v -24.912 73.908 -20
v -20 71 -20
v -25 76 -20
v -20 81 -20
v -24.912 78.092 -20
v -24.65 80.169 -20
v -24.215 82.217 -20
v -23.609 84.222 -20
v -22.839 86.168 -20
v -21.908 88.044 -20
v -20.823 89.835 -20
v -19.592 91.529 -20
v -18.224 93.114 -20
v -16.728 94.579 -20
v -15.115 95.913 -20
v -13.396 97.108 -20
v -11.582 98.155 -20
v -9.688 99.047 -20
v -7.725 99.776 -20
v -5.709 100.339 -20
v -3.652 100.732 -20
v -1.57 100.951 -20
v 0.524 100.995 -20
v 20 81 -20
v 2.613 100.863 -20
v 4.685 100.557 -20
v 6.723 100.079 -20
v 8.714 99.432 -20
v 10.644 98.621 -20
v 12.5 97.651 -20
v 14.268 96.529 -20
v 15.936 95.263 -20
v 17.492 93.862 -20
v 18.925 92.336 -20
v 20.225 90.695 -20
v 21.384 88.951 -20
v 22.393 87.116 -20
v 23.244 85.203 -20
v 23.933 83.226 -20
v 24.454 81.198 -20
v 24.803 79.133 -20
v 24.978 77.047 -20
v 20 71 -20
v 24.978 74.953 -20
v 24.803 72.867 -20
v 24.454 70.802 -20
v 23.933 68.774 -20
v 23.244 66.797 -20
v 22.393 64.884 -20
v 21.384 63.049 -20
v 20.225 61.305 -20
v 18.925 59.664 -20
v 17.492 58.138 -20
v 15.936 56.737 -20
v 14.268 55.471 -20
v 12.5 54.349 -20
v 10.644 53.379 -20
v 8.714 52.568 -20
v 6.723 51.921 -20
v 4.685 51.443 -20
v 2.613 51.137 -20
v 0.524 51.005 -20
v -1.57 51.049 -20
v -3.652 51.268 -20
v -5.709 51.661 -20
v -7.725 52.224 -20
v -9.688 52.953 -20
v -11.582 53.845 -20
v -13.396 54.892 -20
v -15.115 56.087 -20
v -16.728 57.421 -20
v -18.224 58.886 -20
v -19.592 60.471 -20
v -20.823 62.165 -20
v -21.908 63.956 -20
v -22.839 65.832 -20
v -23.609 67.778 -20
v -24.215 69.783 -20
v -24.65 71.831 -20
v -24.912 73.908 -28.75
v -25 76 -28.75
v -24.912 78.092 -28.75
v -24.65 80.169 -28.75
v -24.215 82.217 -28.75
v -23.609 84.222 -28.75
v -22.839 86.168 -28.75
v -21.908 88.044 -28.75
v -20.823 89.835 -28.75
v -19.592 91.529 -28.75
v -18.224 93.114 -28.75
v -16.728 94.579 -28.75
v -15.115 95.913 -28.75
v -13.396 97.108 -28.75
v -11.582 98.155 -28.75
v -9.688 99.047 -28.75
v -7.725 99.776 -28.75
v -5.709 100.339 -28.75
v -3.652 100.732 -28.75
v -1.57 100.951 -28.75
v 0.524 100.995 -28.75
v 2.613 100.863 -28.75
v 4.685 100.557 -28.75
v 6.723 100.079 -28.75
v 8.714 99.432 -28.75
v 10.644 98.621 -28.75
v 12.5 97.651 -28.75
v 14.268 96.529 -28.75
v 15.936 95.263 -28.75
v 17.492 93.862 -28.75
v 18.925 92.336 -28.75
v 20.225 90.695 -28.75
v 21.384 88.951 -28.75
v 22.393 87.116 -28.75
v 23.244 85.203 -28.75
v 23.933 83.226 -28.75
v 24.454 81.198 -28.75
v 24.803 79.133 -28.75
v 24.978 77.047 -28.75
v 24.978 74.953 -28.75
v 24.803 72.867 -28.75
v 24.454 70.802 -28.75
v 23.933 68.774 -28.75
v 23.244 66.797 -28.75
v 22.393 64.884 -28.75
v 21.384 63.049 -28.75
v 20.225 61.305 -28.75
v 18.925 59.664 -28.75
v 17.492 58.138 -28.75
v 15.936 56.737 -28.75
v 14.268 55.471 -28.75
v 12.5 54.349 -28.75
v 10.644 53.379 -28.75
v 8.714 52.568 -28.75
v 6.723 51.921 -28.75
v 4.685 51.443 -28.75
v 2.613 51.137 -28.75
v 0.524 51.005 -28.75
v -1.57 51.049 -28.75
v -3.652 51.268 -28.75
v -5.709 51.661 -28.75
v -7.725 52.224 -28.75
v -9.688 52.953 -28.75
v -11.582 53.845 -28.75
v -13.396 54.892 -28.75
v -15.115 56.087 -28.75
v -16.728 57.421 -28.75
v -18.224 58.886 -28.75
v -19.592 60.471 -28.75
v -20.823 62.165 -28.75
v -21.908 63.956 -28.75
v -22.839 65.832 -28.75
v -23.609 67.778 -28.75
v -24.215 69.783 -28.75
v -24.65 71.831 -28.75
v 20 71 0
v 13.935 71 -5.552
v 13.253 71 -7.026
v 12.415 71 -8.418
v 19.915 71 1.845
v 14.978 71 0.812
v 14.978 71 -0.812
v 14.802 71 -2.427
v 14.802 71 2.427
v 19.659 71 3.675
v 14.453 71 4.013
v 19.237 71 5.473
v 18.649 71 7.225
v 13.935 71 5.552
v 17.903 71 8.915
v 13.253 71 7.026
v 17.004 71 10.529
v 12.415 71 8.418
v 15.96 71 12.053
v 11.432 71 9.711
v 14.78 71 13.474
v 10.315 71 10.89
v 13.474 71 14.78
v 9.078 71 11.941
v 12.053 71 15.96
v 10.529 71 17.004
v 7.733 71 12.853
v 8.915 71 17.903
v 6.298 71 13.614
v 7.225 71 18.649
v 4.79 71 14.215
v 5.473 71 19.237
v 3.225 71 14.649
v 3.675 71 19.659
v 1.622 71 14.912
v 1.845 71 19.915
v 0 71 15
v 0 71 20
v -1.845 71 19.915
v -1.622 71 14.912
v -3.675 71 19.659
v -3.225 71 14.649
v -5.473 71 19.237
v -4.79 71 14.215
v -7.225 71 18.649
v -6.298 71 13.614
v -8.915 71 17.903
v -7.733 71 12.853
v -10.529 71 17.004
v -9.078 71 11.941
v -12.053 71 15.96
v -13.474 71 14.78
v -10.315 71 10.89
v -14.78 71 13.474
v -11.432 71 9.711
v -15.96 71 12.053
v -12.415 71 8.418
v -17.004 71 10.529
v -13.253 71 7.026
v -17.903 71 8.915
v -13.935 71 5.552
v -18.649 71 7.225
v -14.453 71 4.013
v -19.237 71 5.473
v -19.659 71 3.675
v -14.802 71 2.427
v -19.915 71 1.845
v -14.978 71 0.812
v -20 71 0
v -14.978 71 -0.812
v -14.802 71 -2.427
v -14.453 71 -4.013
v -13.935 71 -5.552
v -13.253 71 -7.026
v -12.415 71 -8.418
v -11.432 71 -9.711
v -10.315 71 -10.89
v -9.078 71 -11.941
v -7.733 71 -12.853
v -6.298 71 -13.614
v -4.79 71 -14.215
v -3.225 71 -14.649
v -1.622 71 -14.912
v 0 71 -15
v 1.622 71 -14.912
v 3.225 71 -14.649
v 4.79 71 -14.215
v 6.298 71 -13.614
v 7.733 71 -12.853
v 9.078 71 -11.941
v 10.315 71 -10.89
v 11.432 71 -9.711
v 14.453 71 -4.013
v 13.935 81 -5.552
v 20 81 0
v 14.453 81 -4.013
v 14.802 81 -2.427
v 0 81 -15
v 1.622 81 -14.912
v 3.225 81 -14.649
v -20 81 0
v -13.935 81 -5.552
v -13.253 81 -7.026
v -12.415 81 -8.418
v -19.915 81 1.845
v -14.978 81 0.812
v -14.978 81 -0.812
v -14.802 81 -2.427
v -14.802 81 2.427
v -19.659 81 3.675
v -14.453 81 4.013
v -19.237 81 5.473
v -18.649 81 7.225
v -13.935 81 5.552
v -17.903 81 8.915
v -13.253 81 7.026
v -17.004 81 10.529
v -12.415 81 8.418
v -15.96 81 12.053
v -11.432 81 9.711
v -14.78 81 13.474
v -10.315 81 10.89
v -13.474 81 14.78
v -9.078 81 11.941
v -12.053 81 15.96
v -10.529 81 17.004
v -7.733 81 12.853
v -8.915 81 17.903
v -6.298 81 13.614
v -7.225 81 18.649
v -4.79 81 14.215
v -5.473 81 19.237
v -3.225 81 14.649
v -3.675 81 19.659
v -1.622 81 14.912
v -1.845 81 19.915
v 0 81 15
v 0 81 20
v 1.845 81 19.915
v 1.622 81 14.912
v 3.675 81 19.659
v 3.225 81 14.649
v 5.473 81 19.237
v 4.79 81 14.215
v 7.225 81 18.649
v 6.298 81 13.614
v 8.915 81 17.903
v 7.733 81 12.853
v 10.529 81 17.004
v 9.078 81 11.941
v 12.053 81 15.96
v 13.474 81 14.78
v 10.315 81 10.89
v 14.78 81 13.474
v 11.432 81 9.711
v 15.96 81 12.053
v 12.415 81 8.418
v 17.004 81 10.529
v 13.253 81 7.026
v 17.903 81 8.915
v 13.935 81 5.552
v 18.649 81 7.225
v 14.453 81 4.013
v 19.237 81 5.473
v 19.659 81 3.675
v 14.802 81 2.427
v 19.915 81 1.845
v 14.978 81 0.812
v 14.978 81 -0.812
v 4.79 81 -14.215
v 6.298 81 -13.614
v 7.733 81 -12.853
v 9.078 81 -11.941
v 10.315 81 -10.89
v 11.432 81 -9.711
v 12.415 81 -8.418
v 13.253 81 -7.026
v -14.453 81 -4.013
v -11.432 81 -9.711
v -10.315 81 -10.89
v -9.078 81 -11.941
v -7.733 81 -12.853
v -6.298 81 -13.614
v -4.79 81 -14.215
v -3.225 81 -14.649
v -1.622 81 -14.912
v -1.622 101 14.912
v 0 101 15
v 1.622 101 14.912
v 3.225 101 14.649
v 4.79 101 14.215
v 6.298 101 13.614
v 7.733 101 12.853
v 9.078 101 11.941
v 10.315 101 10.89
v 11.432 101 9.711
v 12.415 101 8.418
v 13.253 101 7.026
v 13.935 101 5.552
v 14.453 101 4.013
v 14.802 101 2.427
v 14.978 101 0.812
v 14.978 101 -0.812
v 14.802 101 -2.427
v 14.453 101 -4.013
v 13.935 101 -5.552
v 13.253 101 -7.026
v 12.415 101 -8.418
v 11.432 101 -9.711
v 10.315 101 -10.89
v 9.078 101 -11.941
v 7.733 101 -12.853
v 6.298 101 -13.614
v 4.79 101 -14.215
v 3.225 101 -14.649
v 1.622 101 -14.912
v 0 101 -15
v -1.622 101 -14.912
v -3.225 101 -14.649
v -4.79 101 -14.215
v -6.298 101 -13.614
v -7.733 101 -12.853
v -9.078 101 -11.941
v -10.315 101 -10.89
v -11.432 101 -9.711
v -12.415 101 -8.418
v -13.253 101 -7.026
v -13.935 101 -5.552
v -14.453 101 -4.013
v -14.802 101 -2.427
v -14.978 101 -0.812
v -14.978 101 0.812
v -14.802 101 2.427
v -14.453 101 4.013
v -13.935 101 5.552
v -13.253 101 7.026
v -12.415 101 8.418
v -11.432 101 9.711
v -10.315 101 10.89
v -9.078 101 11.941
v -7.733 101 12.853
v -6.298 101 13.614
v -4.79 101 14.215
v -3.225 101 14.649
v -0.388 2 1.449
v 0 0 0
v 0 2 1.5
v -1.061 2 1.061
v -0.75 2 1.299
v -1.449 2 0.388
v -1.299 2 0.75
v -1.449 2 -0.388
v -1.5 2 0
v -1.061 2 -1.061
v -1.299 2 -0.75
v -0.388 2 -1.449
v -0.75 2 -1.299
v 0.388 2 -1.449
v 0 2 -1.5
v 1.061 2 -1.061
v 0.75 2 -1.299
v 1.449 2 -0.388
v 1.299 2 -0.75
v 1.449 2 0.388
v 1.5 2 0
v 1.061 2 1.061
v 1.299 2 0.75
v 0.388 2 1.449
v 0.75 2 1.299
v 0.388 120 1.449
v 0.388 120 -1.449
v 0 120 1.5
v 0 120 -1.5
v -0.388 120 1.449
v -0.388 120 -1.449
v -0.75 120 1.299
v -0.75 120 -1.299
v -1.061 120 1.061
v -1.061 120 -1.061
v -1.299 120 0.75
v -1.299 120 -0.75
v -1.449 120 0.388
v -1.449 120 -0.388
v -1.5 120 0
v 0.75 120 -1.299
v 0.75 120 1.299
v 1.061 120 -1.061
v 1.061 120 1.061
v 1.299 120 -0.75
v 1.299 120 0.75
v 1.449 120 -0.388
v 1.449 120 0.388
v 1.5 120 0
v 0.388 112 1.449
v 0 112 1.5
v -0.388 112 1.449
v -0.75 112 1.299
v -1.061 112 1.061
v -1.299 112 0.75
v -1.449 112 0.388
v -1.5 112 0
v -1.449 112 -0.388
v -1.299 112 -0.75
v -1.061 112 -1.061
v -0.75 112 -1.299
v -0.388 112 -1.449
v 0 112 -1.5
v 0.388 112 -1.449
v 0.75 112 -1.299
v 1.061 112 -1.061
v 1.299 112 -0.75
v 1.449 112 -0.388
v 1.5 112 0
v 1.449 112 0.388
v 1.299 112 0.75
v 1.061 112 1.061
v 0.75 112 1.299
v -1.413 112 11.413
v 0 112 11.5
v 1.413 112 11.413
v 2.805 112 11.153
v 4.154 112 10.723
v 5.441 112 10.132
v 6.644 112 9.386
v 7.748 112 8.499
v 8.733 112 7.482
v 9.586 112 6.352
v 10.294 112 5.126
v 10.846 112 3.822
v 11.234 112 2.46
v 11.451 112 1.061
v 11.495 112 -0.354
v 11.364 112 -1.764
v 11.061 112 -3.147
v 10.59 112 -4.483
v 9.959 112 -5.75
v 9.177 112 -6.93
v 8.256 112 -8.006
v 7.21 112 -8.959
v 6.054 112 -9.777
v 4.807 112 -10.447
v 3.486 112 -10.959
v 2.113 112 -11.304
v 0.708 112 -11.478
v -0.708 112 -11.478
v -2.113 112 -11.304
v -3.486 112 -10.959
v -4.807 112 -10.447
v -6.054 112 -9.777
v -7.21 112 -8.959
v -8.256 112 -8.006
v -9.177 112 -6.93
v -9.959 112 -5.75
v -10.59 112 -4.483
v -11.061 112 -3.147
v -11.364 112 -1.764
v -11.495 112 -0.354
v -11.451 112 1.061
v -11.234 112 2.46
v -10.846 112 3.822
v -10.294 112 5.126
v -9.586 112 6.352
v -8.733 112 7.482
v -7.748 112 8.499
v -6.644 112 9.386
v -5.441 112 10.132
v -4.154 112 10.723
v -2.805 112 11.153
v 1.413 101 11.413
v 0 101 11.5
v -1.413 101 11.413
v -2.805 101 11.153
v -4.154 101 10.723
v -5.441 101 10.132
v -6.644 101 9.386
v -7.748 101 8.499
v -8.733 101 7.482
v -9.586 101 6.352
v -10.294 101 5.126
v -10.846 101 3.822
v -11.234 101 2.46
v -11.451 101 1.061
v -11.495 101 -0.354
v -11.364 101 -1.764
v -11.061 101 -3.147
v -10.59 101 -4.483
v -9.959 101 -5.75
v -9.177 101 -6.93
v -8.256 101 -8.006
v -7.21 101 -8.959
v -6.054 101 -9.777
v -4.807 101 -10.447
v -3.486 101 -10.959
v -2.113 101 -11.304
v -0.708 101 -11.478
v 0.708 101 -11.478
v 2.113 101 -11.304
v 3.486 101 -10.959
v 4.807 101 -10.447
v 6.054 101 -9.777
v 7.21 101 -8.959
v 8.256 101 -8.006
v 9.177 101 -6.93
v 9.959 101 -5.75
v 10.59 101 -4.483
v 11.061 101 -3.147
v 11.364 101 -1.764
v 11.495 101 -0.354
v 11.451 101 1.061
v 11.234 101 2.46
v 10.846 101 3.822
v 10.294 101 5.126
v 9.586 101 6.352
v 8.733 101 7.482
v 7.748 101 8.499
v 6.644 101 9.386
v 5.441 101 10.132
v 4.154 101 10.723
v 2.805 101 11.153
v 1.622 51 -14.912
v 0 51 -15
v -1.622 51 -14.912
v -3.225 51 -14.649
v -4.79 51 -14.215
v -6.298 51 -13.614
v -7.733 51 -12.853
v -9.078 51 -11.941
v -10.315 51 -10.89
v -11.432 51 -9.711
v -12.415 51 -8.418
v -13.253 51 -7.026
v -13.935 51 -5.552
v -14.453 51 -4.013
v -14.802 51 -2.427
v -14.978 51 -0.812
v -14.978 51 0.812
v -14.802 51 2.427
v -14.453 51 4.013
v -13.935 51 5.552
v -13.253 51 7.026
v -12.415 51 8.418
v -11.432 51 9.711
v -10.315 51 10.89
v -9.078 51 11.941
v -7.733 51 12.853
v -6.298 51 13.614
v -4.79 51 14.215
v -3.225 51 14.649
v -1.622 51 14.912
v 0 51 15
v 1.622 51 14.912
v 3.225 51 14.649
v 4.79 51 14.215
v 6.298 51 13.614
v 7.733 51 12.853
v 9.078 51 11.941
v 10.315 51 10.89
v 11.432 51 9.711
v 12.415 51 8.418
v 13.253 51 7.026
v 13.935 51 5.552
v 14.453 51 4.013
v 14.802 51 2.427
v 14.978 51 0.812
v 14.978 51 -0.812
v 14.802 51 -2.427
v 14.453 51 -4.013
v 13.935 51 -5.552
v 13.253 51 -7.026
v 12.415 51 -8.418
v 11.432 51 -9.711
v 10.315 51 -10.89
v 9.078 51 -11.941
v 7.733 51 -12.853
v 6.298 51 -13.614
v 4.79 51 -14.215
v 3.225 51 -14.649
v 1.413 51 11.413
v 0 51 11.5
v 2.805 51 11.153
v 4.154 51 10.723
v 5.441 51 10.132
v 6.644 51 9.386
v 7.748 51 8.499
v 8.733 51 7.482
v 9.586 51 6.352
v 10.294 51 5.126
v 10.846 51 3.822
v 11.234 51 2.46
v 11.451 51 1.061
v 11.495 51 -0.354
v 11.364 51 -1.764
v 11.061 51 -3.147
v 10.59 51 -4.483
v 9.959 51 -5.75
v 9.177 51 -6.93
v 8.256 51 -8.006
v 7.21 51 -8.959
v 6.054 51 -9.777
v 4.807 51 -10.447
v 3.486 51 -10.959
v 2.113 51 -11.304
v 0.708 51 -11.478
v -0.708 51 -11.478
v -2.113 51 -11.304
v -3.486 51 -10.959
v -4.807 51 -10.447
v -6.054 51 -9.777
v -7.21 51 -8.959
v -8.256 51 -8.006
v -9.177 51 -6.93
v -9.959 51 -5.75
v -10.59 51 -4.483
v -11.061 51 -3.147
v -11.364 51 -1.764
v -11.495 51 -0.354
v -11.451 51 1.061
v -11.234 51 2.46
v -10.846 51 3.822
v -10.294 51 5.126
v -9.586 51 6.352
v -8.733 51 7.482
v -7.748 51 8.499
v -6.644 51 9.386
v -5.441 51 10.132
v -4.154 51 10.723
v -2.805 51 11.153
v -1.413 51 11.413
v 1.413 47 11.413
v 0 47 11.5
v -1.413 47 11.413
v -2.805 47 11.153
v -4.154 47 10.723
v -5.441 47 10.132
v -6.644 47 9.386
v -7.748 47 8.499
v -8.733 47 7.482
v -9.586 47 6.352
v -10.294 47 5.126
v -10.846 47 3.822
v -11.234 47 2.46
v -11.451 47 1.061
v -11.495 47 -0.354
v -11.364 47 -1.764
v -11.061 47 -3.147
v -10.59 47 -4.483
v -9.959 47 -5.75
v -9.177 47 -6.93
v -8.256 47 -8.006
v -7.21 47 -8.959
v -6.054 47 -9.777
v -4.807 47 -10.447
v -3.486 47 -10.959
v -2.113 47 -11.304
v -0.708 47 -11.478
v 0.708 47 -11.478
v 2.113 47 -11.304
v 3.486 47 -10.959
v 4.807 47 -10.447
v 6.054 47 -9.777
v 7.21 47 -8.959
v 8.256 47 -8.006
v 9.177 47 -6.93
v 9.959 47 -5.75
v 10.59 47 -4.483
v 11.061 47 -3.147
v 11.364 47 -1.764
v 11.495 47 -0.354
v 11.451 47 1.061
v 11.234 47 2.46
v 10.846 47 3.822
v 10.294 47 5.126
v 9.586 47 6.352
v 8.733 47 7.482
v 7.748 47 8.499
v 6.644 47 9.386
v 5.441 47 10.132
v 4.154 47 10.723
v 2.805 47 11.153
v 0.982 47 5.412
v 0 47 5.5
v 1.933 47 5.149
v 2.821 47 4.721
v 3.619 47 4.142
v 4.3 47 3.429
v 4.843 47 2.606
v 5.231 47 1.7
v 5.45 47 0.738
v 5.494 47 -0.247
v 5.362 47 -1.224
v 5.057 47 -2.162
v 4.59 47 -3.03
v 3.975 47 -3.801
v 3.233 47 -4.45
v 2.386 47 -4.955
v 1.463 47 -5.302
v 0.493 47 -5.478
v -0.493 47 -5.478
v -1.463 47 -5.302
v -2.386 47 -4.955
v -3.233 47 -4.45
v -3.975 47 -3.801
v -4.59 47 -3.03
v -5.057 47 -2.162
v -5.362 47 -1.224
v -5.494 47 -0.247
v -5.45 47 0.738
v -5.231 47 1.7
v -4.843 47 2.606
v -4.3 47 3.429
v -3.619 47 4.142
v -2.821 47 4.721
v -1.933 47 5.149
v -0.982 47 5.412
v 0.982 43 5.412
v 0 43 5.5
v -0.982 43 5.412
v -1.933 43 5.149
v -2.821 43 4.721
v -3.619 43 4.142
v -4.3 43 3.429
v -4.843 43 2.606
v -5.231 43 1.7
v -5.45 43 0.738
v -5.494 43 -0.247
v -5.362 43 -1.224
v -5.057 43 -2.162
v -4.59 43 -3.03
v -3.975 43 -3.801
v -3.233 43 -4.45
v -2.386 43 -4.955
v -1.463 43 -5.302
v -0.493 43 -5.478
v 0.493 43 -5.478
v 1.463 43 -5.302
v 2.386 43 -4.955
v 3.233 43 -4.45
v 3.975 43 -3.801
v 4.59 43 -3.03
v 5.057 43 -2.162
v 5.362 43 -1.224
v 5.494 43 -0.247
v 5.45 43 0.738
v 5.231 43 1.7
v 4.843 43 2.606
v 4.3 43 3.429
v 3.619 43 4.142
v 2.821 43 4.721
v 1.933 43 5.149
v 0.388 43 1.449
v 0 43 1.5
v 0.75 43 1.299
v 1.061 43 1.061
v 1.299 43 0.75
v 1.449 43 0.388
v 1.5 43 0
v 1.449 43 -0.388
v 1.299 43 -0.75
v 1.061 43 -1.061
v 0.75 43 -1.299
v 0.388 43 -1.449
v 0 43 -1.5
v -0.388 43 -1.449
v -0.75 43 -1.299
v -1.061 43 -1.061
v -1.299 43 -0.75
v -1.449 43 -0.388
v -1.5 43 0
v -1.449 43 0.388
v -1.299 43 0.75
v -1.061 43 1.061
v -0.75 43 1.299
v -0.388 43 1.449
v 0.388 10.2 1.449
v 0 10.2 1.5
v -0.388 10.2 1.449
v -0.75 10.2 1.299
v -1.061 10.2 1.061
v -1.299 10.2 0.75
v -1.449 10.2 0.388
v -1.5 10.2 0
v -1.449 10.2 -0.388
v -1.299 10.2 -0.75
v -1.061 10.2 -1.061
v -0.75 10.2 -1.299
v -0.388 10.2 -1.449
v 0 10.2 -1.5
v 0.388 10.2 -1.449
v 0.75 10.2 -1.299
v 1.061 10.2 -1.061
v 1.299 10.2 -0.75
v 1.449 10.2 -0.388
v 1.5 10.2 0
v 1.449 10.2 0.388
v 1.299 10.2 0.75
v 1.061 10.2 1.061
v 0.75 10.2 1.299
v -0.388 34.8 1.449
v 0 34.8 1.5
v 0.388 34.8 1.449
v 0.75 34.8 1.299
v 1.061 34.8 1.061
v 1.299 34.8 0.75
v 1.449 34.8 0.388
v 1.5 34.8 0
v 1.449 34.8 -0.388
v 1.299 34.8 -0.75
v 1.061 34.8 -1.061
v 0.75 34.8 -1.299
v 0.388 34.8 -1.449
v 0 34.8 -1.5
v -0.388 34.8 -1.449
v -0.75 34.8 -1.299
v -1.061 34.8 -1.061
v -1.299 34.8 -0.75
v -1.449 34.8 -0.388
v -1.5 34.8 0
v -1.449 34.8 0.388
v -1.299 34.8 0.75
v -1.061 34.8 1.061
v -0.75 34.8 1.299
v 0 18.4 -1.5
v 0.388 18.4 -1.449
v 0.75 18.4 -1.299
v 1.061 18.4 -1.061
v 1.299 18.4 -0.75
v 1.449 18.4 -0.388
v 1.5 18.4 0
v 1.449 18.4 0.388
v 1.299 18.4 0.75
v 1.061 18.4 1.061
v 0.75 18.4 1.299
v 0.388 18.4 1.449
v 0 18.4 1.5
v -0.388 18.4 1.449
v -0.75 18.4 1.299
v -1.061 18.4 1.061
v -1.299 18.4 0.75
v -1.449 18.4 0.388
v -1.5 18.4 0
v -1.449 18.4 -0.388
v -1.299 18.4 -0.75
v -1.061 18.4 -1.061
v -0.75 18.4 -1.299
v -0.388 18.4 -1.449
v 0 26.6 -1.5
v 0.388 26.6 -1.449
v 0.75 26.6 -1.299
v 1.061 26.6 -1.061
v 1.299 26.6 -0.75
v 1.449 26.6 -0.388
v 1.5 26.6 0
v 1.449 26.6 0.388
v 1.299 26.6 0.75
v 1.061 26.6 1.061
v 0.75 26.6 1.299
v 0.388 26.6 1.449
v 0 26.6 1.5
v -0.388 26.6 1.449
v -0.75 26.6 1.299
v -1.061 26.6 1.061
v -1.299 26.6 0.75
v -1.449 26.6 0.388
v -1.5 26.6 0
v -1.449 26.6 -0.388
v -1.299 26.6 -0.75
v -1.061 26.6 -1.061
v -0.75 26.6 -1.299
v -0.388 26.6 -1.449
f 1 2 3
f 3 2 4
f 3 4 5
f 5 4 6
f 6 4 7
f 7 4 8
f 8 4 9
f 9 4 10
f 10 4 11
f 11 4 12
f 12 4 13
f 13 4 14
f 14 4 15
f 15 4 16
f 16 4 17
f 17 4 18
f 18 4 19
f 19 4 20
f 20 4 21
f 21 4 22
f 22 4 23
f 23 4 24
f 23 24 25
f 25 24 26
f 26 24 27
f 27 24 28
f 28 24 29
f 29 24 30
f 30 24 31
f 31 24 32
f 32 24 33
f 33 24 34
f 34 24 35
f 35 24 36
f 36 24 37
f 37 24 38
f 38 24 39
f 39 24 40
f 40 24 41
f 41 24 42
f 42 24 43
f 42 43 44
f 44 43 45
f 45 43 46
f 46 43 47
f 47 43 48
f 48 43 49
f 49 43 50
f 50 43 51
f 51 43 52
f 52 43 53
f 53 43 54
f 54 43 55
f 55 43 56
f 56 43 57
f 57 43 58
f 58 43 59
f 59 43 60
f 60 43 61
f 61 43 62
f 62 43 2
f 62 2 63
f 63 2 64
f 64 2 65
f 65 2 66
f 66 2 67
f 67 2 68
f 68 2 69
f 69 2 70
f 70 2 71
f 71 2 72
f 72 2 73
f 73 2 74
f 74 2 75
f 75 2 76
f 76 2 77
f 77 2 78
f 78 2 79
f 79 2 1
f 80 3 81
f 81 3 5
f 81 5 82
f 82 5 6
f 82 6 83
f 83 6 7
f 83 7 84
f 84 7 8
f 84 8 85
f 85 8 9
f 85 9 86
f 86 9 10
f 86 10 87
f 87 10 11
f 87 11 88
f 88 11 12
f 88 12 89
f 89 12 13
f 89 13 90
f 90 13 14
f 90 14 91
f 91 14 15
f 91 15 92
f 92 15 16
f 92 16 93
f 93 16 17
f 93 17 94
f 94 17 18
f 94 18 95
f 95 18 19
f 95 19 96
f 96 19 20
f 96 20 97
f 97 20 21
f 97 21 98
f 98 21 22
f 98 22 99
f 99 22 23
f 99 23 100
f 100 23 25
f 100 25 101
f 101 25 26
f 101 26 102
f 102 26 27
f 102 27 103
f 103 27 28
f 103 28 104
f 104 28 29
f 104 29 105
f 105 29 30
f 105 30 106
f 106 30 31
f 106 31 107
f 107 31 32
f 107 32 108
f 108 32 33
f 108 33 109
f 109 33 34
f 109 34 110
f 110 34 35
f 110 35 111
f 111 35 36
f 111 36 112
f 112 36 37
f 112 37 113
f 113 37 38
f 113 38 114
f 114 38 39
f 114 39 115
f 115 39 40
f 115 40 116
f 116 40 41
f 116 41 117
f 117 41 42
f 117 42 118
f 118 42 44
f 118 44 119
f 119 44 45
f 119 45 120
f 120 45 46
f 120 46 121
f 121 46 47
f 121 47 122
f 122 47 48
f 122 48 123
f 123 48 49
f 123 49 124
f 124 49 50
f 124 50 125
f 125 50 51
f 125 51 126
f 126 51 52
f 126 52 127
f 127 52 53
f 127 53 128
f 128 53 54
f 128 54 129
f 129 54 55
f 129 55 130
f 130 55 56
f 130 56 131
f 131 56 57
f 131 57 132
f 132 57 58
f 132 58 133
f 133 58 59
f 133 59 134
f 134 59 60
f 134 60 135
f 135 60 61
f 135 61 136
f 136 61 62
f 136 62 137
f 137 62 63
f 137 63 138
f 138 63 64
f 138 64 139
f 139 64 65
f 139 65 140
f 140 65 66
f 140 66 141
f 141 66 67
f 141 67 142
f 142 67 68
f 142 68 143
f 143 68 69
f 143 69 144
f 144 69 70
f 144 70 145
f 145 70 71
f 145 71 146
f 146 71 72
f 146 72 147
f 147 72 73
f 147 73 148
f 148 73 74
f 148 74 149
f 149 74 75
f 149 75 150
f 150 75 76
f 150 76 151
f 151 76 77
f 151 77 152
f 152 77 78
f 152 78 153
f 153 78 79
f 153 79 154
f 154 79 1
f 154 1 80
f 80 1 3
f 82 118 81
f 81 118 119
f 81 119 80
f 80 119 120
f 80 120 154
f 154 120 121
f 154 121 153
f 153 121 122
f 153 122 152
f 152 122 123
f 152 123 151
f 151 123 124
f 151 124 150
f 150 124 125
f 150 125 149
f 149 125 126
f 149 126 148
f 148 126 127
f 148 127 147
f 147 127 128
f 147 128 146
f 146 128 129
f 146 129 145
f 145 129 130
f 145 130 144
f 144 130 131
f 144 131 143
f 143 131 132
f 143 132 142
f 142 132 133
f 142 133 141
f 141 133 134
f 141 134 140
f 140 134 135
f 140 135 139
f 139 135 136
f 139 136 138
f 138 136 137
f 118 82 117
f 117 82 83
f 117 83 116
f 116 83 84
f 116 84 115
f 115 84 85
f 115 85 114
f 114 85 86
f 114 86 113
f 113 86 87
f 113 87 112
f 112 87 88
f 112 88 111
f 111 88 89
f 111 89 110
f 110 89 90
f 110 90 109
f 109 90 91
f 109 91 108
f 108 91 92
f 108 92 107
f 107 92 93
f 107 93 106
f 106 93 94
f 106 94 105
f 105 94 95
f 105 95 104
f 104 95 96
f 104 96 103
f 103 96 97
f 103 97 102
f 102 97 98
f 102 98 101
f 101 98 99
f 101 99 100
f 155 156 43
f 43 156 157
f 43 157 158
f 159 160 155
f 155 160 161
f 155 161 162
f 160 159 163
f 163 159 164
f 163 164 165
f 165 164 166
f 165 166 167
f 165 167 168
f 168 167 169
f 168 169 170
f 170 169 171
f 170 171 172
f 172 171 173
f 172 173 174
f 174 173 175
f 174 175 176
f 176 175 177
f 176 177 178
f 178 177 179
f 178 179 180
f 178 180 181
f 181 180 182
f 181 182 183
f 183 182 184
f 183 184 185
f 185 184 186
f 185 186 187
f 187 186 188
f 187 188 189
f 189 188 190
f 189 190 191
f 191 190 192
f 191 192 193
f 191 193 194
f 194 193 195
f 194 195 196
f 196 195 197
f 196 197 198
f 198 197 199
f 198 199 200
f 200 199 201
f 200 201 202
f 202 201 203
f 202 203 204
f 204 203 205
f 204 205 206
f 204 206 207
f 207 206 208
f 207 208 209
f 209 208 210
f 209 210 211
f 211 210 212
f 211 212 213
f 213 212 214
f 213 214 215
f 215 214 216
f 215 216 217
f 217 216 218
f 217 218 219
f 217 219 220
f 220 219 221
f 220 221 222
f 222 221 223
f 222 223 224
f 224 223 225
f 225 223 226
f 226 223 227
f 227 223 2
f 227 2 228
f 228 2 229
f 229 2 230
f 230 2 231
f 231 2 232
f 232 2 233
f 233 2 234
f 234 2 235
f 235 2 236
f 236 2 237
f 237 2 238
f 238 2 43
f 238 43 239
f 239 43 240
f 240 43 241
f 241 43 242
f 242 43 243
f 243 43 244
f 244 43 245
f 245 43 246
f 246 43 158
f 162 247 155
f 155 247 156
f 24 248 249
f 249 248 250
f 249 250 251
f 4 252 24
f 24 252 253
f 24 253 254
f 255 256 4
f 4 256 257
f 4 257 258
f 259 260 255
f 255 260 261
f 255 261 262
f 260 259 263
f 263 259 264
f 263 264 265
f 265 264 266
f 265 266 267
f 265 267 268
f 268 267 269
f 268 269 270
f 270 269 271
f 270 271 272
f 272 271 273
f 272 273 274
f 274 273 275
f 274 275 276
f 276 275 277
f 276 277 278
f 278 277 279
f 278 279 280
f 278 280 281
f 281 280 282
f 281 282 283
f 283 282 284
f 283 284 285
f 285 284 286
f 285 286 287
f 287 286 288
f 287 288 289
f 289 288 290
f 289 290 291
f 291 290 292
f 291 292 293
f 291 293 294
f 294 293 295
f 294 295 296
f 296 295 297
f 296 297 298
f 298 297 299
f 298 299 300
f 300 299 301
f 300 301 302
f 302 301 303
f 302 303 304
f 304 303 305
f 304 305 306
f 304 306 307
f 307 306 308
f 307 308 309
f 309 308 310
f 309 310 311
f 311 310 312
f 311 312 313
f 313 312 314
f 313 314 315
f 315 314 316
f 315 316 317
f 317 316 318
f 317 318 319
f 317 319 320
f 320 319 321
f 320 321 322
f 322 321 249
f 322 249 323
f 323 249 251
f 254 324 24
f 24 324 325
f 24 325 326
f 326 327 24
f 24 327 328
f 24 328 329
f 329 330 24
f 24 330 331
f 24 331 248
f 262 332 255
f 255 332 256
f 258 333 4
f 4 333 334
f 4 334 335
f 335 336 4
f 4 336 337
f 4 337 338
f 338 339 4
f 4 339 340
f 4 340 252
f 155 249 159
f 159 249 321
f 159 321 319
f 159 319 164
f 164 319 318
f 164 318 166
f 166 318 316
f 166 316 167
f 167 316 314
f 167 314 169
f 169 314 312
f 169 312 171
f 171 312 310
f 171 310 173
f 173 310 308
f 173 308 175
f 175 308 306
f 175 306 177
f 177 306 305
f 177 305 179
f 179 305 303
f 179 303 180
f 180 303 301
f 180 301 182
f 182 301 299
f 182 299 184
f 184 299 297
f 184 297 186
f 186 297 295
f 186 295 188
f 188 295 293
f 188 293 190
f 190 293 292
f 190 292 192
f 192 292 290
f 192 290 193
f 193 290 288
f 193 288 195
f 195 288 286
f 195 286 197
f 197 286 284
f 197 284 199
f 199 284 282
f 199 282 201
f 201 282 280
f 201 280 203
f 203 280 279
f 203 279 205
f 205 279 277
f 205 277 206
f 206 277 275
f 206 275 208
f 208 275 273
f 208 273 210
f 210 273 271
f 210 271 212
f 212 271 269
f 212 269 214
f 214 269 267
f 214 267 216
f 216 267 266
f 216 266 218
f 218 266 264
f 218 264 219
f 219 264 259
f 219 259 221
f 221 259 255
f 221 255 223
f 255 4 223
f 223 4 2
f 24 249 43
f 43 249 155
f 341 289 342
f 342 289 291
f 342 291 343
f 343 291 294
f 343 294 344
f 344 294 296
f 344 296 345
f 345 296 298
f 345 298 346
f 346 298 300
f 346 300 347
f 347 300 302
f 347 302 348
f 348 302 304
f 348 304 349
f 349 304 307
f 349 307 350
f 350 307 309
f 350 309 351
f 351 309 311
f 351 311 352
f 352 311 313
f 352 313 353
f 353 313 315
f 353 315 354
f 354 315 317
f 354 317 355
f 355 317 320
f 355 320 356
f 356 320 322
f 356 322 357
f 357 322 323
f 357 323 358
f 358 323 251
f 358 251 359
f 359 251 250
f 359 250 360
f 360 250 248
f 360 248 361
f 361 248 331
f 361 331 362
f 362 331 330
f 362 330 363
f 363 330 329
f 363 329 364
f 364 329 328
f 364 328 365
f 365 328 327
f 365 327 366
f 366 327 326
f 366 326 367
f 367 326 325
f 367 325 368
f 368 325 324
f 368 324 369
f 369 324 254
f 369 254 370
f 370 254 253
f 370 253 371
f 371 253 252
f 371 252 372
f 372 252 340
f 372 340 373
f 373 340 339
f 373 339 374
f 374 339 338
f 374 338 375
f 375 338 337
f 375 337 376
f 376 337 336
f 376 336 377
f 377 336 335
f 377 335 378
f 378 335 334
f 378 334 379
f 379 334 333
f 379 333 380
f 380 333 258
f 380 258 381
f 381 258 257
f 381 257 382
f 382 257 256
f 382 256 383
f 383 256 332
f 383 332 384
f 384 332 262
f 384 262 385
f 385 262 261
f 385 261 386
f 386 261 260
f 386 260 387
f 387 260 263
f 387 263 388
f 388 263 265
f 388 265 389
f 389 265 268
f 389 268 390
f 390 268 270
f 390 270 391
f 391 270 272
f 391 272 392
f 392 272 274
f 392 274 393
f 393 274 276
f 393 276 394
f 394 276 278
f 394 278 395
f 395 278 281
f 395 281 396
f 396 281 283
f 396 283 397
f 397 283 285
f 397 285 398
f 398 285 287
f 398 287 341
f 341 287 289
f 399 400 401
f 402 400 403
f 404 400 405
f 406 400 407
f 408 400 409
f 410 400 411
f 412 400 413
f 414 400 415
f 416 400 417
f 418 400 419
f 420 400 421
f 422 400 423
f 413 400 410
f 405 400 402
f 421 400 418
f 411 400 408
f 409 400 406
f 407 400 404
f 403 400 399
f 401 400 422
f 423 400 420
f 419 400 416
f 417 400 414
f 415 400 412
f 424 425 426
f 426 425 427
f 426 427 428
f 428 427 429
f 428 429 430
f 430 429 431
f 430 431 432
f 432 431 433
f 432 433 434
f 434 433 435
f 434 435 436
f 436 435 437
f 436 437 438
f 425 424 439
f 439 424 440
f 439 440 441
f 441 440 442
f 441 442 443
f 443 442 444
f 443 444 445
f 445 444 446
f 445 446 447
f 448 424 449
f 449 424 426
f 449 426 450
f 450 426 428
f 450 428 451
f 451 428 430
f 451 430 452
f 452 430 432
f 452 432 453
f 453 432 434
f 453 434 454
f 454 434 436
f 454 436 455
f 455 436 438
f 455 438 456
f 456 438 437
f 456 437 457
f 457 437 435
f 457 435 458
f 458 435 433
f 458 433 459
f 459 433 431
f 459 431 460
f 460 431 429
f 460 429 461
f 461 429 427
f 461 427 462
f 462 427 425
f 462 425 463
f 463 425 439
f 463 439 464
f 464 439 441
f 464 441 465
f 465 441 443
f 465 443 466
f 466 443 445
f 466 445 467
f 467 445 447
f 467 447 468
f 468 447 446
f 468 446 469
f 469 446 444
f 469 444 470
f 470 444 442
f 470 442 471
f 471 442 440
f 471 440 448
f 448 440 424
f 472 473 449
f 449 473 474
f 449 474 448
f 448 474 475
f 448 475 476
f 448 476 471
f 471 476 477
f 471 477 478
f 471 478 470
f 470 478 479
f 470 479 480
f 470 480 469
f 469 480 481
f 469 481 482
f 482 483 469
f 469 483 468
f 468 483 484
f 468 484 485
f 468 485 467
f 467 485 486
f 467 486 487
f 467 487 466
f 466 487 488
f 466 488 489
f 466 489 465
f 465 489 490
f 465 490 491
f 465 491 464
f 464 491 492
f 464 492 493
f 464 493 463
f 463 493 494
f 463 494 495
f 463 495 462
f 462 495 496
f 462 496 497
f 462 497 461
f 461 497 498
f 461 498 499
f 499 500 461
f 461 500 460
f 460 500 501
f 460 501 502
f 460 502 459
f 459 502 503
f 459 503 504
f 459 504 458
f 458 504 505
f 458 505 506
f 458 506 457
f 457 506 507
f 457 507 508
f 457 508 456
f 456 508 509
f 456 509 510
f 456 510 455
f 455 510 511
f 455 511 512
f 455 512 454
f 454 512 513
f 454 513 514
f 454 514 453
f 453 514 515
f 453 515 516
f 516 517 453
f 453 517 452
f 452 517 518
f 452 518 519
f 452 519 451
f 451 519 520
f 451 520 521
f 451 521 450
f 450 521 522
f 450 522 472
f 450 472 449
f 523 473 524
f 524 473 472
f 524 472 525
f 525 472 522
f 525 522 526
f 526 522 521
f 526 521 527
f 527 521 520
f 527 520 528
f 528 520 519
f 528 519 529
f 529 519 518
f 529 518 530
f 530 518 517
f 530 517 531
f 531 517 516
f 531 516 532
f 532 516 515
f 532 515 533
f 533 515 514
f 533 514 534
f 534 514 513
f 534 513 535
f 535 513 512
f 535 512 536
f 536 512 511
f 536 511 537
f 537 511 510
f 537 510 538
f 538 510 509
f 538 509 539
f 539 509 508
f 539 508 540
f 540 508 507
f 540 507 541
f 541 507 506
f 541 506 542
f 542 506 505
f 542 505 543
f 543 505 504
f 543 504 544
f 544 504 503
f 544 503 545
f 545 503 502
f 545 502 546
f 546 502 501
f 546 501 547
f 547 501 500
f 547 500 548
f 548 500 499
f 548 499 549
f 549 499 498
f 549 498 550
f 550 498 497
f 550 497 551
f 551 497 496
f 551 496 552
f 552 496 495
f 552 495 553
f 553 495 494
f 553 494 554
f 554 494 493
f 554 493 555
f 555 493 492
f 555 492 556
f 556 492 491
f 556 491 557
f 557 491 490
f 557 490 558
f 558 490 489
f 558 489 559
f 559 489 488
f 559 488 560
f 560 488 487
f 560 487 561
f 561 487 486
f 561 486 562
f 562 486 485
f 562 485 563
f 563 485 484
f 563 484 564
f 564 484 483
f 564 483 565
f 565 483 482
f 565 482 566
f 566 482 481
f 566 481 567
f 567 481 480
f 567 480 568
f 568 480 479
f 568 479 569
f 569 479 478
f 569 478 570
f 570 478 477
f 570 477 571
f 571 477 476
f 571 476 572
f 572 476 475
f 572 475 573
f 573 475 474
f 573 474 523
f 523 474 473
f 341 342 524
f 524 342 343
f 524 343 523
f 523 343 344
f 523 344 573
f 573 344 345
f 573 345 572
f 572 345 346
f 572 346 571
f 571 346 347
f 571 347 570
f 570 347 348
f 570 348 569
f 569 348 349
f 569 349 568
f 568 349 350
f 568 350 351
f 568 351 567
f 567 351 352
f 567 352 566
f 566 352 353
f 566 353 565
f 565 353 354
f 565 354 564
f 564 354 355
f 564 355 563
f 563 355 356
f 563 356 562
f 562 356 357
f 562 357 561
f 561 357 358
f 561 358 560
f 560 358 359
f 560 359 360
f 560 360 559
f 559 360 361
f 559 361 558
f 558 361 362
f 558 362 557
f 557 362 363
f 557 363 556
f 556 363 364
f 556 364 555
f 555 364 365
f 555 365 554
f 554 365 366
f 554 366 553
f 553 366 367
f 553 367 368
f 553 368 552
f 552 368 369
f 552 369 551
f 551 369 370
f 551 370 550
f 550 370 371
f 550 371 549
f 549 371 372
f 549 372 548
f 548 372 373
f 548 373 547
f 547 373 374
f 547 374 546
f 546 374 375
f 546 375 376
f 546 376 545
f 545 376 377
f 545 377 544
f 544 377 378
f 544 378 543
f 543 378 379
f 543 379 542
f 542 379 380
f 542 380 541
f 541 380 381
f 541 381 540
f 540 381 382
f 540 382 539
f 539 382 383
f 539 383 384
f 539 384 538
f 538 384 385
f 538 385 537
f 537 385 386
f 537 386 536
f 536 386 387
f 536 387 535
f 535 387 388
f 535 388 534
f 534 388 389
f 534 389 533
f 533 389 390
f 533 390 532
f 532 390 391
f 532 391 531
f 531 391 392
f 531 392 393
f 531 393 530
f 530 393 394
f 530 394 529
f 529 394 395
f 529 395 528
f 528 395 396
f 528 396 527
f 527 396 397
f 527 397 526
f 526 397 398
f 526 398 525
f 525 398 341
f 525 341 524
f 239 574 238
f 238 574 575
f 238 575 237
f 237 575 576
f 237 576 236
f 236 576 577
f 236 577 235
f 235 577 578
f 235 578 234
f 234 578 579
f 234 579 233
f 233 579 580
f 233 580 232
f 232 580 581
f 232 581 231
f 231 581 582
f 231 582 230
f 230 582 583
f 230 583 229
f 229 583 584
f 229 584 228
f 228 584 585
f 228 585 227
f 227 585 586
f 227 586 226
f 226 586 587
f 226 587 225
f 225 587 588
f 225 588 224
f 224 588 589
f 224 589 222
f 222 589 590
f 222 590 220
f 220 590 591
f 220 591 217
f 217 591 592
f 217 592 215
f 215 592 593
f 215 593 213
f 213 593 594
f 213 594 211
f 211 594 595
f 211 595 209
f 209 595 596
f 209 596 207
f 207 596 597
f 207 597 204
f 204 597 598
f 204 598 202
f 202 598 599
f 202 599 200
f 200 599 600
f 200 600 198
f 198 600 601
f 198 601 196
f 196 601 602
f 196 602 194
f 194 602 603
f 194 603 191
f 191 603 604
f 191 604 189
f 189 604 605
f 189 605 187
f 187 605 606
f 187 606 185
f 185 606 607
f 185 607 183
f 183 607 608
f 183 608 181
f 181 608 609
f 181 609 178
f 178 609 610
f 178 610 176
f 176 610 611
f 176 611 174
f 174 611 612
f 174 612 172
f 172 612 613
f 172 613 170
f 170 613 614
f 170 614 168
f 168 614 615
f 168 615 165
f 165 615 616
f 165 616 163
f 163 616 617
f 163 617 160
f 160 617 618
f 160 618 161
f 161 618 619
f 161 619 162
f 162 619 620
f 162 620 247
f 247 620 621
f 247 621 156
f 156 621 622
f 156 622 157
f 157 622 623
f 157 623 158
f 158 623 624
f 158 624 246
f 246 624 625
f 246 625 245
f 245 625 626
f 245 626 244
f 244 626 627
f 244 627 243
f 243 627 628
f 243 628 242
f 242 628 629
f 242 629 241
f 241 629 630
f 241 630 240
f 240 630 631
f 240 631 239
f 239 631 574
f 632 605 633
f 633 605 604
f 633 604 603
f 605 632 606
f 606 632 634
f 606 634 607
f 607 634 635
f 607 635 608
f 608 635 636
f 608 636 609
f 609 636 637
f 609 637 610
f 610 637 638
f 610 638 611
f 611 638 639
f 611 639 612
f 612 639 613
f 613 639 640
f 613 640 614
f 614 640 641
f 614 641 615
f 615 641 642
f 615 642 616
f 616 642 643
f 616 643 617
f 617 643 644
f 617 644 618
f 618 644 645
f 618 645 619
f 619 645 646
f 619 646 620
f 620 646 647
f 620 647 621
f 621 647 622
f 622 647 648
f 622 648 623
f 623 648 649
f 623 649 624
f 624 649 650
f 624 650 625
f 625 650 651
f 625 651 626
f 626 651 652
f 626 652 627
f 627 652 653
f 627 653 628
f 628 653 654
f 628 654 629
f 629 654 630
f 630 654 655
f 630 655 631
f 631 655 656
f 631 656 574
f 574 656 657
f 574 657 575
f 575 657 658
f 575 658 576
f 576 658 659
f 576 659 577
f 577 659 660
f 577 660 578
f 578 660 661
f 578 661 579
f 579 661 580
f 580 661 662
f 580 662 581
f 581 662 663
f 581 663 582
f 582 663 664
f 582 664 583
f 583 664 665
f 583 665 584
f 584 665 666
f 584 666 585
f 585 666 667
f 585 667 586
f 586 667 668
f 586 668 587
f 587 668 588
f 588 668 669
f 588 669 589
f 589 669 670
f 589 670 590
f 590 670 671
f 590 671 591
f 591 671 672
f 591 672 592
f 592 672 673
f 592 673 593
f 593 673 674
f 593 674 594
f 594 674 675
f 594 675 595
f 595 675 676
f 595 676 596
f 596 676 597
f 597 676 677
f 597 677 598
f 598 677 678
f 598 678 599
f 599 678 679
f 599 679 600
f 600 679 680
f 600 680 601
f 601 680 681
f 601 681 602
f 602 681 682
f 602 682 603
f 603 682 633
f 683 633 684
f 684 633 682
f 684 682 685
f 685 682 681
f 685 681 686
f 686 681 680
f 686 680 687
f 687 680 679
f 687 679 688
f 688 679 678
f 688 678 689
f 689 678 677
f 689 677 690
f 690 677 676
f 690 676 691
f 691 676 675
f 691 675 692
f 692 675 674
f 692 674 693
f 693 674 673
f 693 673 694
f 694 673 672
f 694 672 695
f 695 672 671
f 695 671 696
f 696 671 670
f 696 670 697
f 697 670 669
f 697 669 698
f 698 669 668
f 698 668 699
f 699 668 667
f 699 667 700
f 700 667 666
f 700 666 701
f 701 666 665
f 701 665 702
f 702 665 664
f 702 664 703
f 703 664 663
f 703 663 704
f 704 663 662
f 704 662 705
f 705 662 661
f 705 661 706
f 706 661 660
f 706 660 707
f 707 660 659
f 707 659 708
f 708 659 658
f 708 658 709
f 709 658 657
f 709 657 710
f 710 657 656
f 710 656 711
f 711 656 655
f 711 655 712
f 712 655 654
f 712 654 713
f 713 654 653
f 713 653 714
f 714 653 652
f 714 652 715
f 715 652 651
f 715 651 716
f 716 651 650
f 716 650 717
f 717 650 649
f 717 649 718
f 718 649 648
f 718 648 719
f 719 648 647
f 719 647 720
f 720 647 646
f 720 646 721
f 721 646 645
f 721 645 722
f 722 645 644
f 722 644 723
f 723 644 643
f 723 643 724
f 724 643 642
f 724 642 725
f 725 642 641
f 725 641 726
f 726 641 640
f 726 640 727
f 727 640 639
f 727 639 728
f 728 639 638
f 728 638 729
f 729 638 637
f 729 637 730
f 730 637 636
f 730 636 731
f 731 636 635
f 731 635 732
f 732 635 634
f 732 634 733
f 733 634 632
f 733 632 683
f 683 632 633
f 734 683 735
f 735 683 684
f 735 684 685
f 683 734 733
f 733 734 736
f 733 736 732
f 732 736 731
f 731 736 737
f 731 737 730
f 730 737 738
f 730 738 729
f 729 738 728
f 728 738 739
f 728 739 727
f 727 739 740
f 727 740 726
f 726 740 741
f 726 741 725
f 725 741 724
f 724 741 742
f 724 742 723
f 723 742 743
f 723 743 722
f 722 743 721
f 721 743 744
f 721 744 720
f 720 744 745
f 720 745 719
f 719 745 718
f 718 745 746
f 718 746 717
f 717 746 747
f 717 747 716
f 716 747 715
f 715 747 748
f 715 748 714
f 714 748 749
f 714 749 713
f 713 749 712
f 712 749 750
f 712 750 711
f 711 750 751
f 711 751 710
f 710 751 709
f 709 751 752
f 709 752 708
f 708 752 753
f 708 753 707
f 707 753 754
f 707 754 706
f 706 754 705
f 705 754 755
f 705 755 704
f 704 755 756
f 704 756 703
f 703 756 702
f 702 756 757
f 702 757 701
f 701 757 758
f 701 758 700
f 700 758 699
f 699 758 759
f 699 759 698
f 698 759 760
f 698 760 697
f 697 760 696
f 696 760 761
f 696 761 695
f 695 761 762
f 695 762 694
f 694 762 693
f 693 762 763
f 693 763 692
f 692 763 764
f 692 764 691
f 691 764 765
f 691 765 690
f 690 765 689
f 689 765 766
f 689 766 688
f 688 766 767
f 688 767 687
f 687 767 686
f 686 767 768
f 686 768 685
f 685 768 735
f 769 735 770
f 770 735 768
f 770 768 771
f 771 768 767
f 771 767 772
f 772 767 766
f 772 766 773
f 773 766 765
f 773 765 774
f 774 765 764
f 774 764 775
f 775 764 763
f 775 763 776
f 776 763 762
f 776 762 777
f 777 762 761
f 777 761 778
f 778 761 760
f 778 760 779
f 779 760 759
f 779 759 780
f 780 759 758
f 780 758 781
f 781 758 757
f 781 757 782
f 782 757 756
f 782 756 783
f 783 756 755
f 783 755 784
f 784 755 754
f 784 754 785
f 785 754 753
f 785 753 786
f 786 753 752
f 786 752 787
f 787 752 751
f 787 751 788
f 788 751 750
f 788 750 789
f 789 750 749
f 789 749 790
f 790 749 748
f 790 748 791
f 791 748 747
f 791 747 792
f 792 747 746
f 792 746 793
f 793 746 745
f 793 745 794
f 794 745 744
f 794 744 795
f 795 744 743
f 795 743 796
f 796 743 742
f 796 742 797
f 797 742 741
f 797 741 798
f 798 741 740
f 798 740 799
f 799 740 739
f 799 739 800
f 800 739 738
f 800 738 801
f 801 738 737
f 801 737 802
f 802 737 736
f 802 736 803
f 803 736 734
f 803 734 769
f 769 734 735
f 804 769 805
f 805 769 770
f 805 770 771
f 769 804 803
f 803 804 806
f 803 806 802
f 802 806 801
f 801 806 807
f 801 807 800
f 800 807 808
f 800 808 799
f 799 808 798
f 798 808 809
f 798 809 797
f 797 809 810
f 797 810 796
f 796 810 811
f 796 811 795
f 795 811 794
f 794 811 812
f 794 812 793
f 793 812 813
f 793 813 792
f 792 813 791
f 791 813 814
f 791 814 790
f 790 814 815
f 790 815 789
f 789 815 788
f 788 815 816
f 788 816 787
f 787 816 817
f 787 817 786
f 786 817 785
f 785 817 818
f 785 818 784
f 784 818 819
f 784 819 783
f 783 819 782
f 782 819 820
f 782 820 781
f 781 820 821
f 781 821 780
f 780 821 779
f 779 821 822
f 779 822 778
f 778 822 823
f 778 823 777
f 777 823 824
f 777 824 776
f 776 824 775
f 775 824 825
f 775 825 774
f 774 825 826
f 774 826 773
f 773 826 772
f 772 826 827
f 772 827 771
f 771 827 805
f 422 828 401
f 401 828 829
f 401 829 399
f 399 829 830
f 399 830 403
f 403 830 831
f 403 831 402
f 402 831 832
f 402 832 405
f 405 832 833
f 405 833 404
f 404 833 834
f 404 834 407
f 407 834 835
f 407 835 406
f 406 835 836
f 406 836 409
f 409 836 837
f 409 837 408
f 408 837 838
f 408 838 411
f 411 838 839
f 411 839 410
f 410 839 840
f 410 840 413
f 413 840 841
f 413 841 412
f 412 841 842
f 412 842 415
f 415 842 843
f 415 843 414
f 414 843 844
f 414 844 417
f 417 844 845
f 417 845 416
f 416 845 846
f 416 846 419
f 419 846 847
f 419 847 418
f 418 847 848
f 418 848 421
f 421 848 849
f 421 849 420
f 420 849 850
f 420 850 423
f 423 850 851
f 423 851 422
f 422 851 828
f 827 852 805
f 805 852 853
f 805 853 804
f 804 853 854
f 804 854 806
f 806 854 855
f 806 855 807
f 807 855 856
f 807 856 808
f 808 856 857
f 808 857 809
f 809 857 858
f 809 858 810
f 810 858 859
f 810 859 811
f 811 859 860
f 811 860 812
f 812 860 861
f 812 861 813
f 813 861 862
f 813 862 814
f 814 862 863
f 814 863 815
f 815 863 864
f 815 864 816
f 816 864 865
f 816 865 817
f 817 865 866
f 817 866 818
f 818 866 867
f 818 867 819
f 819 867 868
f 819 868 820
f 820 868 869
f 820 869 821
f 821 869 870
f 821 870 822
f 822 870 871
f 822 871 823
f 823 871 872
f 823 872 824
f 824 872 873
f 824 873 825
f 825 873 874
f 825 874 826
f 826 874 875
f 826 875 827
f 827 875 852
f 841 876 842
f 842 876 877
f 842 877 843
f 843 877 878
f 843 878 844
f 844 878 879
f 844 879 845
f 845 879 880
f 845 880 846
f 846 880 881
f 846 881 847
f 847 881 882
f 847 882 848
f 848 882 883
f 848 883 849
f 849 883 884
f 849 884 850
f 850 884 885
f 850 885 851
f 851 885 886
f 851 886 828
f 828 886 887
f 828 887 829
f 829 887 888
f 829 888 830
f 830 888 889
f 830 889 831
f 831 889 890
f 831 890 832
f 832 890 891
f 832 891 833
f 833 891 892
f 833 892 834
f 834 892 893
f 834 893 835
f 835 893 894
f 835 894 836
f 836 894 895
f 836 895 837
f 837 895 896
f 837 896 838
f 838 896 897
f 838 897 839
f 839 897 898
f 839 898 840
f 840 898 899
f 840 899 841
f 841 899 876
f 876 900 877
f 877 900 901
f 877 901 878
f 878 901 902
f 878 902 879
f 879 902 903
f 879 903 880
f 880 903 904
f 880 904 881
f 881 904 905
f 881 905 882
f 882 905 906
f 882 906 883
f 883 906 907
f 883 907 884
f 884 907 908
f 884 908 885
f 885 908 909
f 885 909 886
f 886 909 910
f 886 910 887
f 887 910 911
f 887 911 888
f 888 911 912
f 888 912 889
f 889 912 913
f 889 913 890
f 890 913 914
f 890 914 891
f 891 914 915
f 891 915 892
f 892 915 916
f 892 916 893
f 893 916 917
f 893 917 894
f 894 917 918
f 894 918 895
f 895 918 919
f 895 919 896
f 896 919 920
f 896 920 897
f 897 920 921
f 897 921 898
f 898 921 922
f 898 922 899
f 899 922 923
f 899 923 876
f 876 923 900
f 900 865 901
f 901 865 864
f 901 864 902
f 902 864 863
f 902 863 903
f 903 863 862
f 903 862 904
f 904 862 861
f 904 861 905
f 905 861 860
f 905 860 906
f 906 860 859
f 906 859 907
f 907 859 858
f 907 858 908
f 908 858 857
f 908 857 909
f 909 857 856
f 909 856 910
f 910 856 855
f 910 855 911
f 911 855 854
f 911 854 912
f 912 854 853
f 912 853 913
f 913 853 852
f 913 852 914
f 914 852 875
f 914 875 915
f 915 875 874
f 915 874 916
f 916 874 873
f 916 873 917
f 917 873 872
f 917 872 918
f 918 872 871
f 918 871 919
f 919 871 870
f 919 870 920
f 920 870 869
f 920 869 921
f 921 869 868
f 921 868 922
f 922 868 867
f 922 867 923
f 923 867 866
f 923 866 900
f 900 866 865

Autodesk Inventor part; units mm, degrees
ref_plane "YZ Plane" through (0, 0, 0) normal (1, 0, 0) x (0, 1, 0)
ref_plane "XZ Plane" through (0, 0, 0) normal (0, 1, 0) x (-1, 0, 0)
ref_plane "XY Plane" through (0, 0, 0) normal (0, 0, 1) x (1, 0, 0)
sketch "Sketch1" plane through (0, 0, 0) normal (1, 0, 0) x (0, 1, 0)
  line L0 (0, 0) -> (1.5, 2)
  line L1 (1.5, 2) -> (1.5, 43)
  line L2 (0, 59) -> (0, 0)
  line L3 (11.5, 51) -> (16.5, 51)
  line L4 (16.5, 51) -> (16.5, 101)
  line L5 (16.5, 101) -> (11.5, 101)
  line L6 (1.5, 105) -> (1.5, 120)
  line L7 (1.5, 120) -> (0, 120)
  line L8 (0, 120) -> (0, 59)
  line L9 (0, -24) -> (0, 144) projected
  line L10 (16.5, 76) -> (-5.6648, 76)
  line L11 (-30.7978, 0) -> (145.133, 0) projected
  line L12 (11.5, 101) -> (11.5, 105)
  line L13 (11.5, 105) -> (1.5, 105)
  line L14 (11.5, 51) -> (11.5, 47)
  line L15 (11.5, 47) -> (5.5, 47)
  line L16 (5.5, 47) -> (5.5, 43)
  line L17 (5.5, 43) -> (1.5, 43)
  line L18 (0, 0) -> (2, 1.5)
  line L19 (2, 1.5) -> (43, 1.5)
  line L20 (43, 1.5) -> (43, 5.5)
  line L21 (43, 5.5) -> (47, 5.5)
  line L22 (47, 5.5) -> (47, 11.5)
  line L23 (47, 11.5) -> (51, 11.5)
  line L24 (51, 11.5) -> (51, 15)
  line L25 (51, 15) -> (101, 15)
  line L26 (101, 15) -> (101, 11.5)
  line L27 (101, 11.5) -> (112, 11.5)
  line L28 (112, 11.5) -> (112, 1.5)
  line L29 (112, 1.5) -> (120, 1.5)
  line L30 (120, 1.5) -> (120, 0)
  line L31 (-30.7978, 0) -> (145.133, 0) projected
  line L32 (76, 15) -> (76, 0)
  line L33 (0, 0) -> (120, 0)
  dimension "d0" = 2
  dimension "d3" = 76
  dimension "d4" = 120
  dimension "d5" = 50
  dimension "d7" = 1.5
  dimension "d8" = 10
  dimension "d9" = 4
  dimension "d10" = 4
  dimension "d11" = 4
  dimension "d12" = 6
  dimension "d13" = 4
  dimension "d21" = 2
  dimension "d22" = 1.5
  dimension "d23" = 76
  dimension "d24" = 120
  dimension "d25" = 1.5
  dimension "d26" = 4
  dimension "d27" = 4
  dimension "d28" = 6
  dimension "d29" = 4
  dimension "d30" = 10
  dimension "d31" = 8
  dimension "d32" = 50
  dimension "d33" = 15
  dimension "d42" = 3
revolve "Revolution1" add sketch "Sketch1" angle 360 about axis through (0, -10, 0) along (0, 1, 0) contours L18 L19 L20 L21 L22 L23 L24 L25 L32 L11 | L32 L25 L26 L27 L28 L29 L30 L11
ref_plane "Work Plane2" through (0, 76, 0) normal (0, 1, 0) x (1, 0, 0)
sketch "Sketch4" plane through (0, 76, 0) normal (0, 1, 0) x (1, 0, 0)
  arc A0 (-20, 0) -> (20, 0) centre (0, 0) ccw
  line L0 (-20, 0) -> (-20, 20)
  line L1 (-20, 20) -> (20, 20)
  line L2 (20, 20) -> (20, 0)
  dimension "d35" = 20
  dimension "d36" = 20
extrude "Extrusion3" add sketch "Sketch4" along normal mid plane 10
sketch "Sketch5" plane through (20, 81, -20) normal (0, 0, -1) x (-1, 0, 0)
  line L0 (0, 0) -> (0, -10) projected
  line L1 (0, -5) -> (40, -5) construction
  line L2 (40, -10) -> (40, 0) projected
  circle A0 centre (20, -5) radius 25
  point P0 (20, -81)
  dimension "d39" = 50
extrude "Extrusion4" add sketch "Sketch5" along normal blind 8.75
properties part number "spindle"
